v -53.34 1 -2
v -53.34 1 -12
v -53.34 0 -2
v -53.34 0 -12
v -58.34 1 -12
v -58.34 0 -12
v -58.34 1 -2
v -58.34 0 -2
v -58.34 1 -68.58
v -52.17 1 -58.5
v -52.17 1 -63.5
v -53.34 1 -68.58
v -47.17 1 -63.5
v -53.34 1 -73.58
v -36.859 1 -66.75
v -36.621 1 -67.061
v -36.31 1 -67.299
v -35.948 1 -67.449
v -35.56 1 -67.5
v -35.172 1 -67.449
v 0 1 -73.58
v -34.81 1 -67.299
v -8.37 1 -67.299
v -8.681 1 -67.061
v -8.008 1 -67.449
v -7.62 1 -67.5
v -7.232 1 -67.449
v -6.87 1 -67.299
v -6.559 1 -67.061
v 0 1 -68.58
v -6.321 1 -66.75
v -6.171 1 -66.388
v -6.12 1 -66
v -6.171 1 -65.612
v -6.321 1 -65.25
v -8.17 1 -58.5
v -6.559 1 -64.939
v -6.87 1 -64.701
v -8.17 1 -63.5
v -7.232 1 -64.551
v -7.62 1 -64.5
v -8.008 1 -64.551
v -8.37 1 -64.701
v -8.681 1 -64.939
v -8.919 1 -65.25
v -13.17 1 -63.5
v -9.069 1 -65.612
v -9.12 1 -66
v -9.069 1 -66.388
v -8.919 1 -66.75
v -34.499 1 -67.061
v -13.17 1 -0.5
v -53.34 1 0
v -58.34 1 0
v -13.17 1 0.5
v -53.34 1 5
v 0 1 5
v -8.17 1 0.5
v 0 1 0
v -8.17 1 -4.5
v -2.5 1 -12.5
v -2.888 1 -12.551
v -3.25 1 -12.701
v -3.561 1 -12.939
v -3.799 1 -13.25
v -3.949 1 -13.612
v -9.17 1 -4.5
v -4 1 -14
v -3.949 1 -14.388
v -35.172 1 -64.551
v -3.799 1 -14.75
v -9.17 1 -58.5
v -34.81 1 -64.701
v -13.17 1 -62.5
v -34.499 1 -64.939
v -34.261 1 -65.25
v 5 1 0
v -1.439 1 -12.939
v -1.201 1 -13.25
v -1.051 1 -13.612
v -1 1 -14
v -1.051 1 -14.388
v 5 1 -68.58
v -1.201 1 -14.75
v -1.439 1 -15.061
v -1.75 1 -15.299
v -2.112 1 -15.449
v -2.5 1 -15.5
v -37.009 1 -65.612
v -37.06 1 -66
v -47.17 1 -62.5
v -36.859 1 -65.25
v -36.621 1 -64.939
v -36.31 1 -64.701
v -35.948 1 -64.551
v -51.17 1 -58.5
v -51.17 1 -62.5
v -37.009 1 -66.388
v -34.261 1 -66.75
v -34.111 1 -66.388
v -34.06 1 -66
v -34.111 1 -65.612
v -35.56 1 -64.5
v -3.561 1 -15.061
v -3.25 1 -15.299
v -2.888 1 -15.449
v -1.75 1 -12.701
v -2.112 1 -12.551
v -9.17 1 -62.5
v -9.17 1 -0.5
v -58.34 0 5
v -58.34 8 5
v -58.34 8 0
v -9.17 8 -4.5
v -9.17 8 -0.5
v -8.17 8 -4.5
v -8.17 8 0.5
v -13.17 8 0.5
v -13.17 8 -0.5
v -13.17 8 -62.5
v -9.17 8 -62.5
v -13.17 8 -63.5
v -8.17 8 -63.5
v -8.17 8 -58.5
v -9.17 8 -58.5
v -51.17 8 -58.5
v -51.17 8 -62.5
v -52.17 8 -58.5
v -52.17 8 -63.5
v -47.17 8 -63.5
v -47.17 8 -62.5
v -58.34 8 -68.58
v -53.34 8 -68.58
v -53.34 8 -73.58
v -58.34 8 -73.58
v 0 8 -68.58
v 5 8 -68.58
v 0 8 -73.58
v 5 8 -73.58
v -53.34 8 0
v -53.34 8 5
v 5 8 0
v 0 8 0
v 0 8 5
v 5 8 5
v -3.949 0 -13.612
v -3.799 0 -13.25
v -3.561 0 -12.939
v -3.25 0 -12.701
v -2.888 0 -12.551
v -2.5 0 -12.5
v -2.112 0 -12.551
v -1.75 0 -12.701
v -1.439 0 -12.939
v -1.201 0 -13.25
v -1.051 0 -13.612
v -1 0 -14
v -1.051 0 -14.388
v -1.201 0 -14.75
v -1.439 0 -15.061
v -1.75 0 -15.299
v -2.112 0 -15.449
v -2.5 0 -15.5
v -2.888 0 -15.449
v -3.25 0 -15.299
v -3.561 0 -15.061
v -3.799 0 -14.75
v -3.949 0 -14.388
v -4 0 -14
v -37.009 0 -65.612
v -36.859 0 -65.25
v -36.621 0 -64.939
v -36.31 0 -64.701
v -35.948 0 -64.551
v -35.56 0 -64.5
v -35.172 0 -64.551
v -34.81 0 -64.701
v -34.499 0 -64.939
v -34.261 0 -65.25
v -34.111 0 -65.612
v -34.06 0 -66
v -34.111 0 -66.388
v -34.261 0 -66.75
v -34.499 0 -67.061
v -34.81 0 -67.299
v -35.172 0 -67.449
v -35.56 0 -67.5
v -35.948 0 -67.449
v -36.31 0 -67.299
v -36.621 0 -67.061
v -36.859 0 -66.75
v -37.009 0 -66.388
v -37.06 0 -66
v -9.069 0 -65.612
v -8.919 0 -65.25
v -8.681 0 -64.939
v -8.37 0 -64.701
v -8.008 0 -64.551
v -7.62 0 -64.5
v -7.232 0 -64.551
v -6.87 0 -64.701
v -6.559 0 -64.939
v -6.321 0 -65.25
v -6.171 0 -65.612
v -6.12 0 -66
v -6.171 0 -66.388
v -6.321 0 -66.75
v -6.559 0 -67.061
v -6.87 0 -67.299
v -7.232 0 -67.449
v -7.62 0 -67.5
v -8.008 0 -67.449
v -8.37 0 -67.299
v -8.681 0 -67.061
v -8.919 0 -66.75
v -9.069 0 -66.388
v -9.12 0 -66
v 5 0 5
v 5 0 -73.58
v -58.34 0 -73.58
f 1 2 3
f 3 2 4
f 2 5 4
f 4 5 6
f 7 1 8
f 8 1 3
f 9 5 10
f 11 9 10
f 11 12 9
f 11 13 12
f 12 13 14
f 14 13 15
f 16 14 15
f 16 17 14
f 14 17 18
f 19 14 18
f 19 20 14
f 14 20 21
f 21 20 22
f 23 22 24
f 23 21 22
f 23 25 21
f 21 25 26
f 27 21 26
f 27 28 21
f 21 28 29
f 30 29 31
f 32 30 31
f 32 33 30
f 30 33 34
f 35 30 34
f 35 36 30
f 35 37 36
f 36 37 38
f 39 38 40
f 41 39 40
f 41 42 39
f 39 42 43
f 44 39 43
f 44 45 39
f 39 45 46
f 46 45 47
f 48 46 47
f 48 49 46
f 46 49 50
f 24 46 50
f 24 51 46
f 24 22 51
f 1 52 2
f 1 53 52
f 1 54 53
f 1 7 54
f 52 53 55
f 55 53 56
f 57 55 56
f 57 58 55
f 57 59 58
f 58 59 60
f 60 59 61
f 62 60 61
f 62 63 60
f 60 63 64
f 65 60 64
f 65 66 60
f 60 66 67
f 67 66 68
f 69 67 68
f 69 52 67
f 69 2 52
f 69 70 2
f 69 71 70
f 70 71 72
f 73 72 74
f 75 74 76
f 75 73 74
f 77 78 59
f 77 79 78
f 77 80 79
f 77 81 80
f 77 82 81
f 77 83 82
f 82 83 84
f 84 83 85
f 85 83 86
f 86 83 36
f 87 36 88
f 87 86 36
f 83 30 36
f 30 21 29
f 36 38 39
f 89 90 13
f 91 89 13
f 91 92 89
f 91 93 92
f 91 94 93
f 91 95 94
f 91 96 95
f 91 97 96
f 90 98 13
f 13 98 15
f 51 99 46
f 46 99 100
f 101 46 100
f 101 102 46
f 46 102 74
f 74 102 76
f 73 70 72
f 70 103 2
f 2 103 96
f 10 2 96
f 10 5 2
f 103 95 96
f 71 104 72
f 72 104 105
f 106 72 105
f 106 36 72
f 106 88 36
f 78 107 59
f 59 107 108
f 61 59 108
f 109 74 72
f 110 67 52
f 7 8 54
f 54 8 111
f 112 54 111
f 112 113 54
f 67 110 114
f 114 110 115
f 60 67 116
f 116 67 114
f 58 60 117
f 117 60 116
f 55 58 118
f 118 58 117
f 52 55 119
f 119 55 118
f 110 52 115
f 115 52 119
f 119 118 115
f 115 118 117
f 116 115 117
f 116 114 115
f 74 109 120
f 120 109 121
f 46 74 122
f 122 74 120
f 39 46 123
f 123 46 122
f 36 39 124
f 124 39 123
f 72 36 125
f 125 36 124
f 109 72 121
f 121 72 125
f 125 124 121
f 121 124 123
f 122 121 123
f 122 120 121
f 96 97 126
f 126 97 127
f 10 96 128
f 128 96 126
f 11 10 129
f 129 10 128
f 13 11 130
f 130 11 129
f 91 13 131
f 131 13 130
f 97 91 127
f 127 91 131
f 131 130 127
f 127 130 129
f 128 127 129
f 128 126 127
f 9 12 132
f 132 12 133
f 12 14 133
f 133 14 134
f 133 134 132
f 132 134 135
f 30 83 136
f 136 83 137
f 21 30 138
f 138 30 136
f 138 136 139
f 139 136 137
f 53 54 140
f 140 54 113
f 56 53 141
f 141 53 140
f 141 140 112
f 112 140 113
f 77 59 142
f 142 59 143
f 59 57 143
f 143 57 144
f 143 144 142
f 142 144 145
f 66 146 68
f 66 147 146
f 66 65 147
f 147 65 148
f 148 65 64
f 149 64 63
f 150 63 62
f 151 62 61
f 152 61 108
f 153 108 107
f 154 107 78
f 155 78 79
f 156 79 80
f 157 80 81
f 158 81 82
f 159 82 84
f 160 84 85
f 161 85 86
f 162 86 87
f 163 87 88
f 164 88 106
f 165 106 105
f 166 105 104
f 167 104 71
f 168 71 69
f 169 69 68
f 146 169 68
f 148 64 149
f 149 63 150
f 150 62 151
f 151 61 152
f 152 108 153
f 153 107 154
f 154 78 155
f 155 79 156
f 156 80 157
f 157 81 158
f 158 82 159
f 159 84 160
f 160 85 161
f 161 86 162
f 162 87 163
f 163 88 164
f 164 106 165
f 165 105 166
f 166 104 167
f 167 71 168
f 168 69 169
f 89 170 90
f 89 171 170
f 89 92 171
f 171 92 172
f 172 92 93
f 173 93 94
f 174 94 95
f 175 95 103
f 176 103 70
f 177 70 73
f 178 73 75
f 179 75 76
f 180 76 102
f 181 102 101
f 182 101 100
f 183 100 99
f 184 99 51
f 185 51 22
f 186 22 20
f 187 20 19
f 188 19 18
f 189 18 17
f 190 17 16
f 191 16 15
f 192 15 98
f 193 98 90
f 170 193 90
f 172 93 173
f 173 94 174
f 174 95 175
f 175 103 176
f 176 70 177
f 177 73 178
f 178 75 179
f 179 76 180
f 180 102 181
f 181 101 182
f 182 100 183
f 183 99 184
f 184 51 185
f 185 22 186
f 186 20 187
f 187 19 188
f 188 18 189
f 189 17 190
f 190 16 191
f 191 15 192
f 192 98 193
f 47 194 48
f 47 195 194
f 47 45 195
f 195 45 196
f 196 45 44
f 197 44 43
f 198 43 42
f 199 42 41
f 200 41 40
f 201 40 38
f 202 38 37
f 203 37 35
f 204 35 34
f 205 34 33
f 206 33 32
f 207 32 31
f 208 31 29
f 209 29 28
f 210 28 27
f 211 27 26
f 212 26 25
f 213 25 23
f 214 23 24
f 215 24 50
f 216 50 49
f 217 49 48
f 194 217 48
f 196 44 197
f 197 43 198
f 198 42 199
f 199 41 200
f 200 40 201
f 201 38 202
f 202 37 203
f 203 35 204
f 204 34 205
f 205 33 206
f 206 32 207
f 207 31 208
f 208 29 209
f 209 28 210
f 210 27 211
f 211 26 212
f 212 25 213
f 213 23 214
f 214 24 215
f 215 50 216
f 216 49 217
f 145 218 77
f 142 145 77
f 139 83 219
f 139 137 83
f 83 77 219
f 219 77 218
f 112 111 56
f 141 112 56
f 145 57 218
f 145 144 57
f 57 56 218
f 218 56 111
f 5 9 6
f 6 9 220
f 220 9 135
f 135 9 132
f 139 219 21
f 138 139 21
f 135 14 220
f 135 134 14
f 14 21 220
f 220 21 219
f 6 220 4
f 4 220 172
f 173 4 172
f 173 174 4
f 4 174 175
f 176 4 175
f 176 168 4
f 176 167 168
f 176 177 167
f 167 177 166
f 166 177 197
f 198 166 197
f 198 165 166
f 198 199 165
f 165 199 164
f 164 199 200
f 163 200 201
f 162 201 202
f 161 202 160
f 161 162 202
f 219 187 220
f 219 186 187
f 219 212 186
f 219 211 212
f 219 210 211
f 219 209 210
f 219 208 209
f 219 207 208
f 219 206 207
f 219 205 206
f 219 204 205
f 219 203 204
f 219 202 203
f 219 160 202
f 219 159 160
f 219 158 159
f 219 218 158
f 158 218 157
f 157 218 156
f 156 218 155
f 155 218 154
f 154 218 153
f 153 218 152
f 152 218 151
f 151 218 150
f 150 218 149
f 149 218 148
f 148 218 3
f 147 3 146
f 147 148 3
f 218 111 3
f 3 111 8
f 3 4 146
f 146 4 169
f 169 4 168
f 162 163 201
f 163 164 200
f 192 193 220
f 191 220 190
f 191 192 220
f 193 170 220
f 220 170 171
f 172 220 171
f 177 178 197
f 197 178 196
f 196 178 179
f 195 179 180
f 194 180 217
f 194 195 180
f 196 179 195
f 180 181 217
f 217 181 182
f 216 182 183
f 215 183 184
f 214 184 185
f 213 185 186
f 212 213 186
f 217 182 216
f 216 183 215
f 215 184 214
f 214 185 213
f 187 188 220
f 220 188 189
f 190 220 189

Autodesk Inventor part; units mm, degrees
ref_plane "YZ Plane" through (0, 0, 0) normal (1, 0, 0) x (0, 1, 0)
ref_plane "XZ Plane" through (0, 0, 0) normal (0, 1, 0) x (-1, 0, 0)
ref_plane "XY Plane" through (0, 0, 0) normal (0, 0, 1) x (1, 0, 0)
sketch "Sketch1" plane through (0, 0, 0) normal (0, 1, 0) x (-1, 0, 0)
  line L0 (0, 0) -> (53.34, 0)
  line L1 (53.34, 0) -> (53.34, -68.58)
  line L2 (53.34, -68.58) -> (0, -68.58)
  line L3 (0, -68.58) -> (0, 0)
  line L4 (53.34, -66) -> (0, -66) construction
  circle A0 centre (7.62, -66) radius 1.5
  circle A1 centre (35.56, -66) radius 1.5
  circle A2 centre (2.5, -14) radius 1.5
  line L5 (-5, -73.58) -> (58.34, -73.58)
  line L6 (58.34, -73.58) -> (58.34, 5)
  line L7 (58.34, 5) -> (-5, 5)
  line L8 (-5, 5) -> (-5, -73.58)
  dimension "d0" = 68.58
  dimension "d1" = 53.34
  dimension "d2" = 2.58
  dimension "d3" = 3
  dimension "d4" = 7.62
  dimension "d5" = 3
  dimension "d6" = 35.56
  dimension "d8" = 3
  dimension "d9" = 14
  dimension "d10" = 2.5
  dimension "d46" = 5
  dimension "d73" = 63.34
  dimension "d74" = 78.58
extrude "Extrusion4" add sketch "Sketch1" along normal blind 1 contours L0 L1 L2 L3 | L8 L7 L6 L5
sketch "Sketch5" plane through (0, 1, 0) normal (0, 1, 0) x (1, 0, 0)
  line L0 (5, -5) -> (0, -5)
  line L1 (0, -5) -> (0, 0)
  line L2 (0, 0) -> (5, 0)
  line L3 (5, 0) -> (5, -5)
  dimension "d49" = 5
  dimension "d50" = 5
extrude "Extrusion5" add sketch "Sketch5" along normal blind 7
ref_plane "Work Plane2" through (-26.67, 0, 5) normal (1, 0, 0) x (0, 0, -1)
mirror "Mirror2" about plane through (-26.67, 0, 5) normal (1, 0, 0) of "Extrusion5"
ref_plane "Work Plane3" through (-58.34, 0, -34.29) normal (0, 0, 1) x (1, 0, 0)
mirror "Mirror3" about plane through (-58.34, 0, -34.29) normal (0, 0, 1) of "Extrusion5", "Mirror2"
sketch "Sketch6" plane through (0, 1, 0) normal (0, 1, 0) x (1, 0, 0)
  line L0 (-51.17, 0.5) -> (-9.17, 0.5)
  line L1 (-9.17, 0.5) -> (-9.17, 62.5)
  line L2 (-9.17, 62.5) -> (-51.17, 62.5)
  line L3 (-51.17, 62.5) -> (-51.17, 0.5)
  line L4 (-52.17, 63.5) -> (-8.17, 63.5)
  line L5 (-8.17, 63.5) -> (-8.17, -0.5)
  line L6 (-8.17, -0.5) -> (-52.17, -0.5)
  line L7 (-52.17, -0.5) -> (-52.17, 63.5)
  line L8 (-52.17, 4.5) -> (-51.17, 4.5)
  line L9 (-47.17, 0.5) -> (-47.17, -0.5)
  line L10 (-47.17, 63.5) -> (-47.17, 62.5)
  line L11 (-51.17, 58.5) -> (-52.17, 58.5)
  line L12 (-13.17, 0.5) -> (-13.17, -0.5)
  line L13 (-9.17, 4.5) -> (-8.17, 4.5)
  line L14 (-9.17, 58.5) -> (-8.17, 58.5)
  line L15 (-13.17, 63.5) -> (-13.17, 62.5)
  point P0 (0, 0)
  point P1 (-30.17, 0.5)
  dimension "d34" = 42
  dimension "d35" = 62
  dimension "d39" = 1
  dimension "d40" = 5
  dimension "d41" = 5
  dimension "d44" = 5
  dimension "d45" = 5
  dimension "d62" = 5
  dimension "d63" = 5
  dimension "d64" = 5
  dimension "d65" = 5
sketch "Sketch7" plane through (0, 8, 0) normal (0, 1, 0) x (1, 0, 0)
  line L0 (0, 0) -> (0, -5) projected
  line L1 (0, -5) -> (5, -5) projected
  line L2 (5, -5) -> (5, 0) projected
  line L3 (5, 0) -> (0, 0) projected
  circle A0 centre (2.5, -2.5) radius 1
  dimension "d53" = 5
  dimension "d54" = 2
hole "Hole1" [suppressed]
mirror "Mirror8" [suppressed]
mirror "Mirror9" [suppressed]
extrude "Extrusion8" add sketch "Sketch6" along normal blind 7 contours L0 L1 L13 L5 L6 L12 | L11 L7 L4 L10 L2 L3 | L1 L2 L15 L4 L5 L14
sketch "Sketch8" plane through (0, 1, 0) normal (0, 1, 0) x (1, 0, 0)
  line L0 (-58.34, 73.58) -> (-58.34, -5) projected
  line L1 (-58.34, 2) -> (-53.34, 2)
  line L2 (-53.34, 2) -> (-53.34, 12)
  line L3 (-53.34, 12) -> (-58.34, 12)
  line L4 (-58.34, 12) -> (-58.34, 2)
  line L5 (-58.34, 0) -> (-53.34, 0) projected
  point P0 (0, 0)
  dimension "d68" = 5
  dimension "d69" = 10
  dimension "d70" = 2
extrude "Extrusion9" cut sketch "Sketch8" against normal blind 1
properties part number "sensor3"
